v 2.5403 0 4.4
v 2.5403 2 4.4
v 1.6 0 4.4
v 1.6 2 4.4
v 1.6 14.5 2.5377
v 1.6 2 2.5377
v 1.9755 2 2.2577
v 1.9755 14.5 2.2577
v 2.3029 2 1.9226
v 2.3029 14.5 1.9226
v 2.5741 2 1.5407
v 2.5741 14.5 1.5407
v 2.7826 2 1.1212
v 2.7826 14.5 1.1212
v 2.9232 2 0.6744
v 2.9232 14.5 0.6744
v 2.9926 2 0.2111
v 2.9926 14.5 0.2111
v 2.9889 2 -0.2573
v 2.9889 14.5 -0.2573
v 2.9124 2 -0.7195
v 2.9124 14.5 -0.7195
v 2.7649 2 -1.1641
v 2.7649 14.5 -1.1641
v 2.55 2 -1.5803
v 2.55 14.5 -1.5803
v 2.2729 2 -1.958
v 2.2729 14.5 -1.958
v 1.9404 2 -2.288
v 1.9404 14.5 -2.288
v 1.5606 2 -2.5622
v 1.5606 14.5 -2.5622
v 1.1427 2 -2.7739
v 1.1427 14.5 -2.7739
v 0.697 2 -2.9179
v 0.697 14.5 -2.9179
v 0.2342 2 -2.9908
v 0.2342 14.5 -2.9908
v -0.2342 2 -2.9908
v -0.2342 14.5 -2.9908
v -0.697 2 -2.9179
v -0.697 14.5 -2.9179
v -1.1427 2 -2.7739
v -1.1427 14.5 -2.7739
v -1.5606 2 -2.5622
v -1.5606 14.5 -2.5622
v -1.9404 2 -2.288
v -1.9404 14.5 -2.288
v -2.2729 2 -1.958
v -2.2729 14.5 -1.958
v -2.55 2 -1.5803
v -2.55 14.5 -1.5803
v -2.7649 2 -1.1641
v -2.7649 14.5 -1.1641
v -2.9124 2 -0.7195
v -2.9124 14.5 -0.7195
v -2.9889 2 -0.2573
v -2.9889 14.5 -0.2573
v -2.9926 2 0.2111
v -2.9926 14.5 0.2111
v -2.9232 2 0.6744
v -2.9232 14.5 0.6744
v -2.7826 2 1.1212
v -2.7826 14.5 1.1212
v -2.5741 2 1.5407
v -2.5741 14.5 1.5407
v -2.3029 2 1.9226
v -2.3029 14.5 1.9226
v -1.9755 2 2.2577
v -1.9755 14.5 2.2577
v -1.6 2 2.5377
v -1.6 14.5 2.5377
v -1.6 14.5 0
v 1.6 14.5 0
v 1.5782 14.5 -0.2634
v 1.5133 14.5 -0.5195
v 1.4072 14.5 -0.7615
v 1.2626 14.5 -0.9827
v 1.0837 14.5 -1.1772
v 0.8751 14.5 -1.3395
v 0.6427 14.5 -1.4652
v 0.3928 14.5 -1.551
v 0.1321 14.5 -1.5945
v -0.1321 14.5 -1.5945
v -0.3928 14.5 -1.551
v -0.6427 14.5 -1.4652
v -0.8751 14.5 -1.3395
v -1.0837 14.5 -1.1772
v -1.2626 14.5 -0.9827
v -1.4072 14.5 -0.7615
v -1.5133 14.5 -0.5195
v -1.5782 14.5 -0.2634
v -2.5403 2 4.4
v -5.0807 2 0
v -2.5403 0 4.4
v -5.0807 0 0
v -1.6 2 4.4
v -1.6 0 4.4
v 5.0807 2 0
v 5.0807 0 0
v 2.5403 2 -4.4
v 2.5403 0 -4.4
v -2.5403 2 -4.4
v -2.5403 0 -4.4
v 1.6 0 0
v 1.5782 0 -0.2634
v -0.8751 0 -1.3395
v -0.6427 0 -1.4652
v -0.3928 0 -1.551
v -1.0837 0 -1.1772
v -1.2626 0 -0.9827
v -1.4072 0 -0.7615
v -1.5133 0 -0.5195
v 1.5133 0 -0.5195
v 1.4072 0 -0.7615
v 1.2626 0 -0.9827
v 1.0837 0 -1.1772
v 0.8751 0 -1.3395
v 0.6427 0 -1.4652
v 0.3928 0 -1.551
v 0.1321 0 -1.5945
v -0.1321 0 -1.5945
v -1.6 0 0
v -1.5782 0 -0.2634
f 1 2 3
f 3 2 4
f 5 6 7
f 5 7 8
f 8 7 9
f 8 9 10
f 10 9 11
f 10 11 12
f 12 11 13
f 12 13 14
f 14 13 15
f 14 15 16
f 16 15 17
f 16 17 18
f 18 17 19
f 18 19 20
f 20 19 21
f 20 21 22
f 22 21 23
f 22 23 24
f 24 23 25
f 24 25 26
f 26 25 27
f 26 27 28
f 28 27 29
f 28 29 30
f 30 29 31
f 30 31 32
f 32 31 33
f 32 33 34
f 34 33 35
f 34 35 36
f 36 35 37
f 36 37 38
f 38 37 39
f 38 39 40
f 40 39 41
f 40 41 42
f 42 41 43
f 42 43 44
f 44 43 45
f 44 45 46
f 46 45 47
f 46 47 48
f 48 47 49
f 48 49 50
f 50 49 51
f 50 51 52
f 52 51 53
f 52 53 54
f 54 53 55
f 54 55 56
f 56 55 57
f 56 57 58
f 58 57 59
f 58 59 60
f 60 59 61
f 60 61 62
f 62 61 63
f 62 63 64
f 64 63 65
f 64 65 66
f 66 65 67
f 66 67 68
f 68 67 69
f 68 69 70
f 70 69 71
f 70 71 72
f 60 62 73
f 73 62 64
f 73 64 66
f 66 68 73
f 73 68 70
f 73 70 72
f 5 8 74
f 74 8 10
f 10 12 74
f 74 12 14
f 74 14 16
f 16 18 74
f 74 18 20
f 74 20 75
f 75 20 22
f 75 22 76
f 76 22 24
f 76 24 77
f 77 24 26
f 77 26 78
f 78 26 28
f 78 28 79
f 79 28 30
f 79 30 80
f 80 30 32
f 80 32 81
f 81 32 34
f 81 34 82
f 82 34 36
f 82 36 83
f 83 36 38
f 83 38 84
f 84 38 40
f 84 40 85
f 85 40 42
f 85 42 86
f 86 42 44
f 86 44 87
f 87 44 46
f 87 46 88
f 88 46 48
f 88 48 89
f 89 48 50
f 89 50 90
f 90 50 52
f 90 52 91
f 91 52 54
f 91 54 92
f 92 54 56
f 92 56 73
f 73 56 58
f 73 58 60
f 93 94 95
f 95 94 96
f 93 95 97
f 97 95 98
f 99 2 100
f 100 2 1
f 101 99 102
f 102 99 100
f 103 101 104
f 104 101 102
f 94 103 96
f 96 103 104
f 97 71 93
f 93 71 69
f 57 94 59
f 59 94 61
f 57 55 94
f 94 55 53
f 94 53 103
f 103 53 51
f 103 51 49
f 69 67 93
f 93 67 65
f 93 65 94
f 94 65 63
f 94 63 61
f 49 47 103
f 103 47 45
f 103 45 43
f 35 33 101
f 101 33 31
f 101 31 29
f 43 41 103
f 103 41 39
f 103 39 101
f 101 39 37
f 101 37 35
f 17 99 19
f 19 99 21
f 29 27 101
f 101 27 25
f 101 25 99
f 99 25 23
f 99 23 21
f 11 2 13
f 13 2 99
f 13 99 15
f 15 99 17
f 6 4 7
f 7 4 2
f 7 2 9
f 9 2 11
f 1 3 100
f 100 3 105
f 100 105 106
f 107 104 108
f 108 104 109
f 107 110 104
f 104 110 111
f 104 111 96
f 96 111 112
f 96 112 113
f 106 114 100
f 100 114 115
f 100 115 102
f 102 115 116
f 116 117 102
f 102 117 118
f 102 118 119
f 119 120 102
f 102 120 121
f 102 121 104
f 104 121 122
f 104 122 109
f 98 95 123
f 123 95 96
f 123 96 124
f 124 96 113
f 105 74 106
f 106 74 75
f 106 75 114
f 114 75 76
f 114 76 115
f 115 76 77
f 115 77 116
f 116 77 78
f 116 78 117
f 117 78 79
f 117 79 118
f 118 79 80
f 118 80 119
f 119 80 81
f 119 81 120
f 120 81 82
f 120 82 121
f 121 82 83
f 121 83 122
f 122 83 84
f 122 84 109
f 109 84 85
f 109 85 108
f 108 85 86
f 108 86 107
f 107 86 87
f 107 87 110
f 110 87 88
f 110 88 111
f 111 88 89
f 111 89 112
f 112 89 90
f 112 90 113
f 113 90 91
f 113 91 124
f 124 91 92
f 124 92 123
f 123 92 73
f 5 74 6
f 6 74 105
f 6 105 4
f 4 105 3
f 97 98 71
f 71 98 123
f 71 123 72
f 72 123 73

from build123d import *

# Parameters (mm, degrees)
SKETCH1_R               = 3
BOSS_EXTRUDE1_DEPTH     = 14.5
BOSS_EXTRUDE2_DEPTH     = 2
CUT_EXTRUDE1_DEPTH      = 16.981969007
CUT_EXTRUDE1_DEPTH_BACK = 16.981969007


with BuildPart() as part:
    # Sketch1 → Boss-Extrude1 (new body)
    with BuildSketch(Plane(origin=(0, 0, 0), x_dir=(1, 0, 0), z_dir=(0, 1, 0))):
        with Locations(Location((0, 0, 0), (0, 0, 90))):
            Circle(SKETCH1_R)
    extrude(amount=BOSS_EXTRUDE1_DEPTH)

    # Sketch3 → Boss-Extrude2 (add)
    with BuildSketch(Plane(origin=(0, 0, 0), x_dir=(-1, 0, 0), z_dir=(0, -1, 0))):
        Polygon((5.080682369, 0), (2.540341184, 4.4), (-2.540341184, 4.4), (-5.080682369, 0), (-2.540341184, -4.4), (2.540341184, -4.4), align=None)
    extrude(amount=-BOSS_EXTRUDE2_DEPTH)

    # Sketch4 → Cut-Extrude1 (cut, two sides: drawn at the far end of the back side and taken through both)
    with BuildSketch(Plane(origin=(0, 14.5, 0), x_dir=(1, 0, 0), z_dir=(0, 1, 0)).offset(-CUT_EXTRUDE1_DEPTH_BACK)):
        with BuildLine():
            Line((-1.6, 0), (-1.6, -4.4))
            Line((-1.6, -4.4), (1.6, -4.4))
            Line((1.6, -4.4), (1.6, 0))
            ThreePointArc((1.6, 0), (0, 1.6), (-1.6, 0))
        make_face()
    extrude(amount=CUT_EXTRUDE1_DEPTH + CUT_EXTRUDE1_DEPTH_BACK, mode=Mode.SUBTRACT)


solid = part.part
